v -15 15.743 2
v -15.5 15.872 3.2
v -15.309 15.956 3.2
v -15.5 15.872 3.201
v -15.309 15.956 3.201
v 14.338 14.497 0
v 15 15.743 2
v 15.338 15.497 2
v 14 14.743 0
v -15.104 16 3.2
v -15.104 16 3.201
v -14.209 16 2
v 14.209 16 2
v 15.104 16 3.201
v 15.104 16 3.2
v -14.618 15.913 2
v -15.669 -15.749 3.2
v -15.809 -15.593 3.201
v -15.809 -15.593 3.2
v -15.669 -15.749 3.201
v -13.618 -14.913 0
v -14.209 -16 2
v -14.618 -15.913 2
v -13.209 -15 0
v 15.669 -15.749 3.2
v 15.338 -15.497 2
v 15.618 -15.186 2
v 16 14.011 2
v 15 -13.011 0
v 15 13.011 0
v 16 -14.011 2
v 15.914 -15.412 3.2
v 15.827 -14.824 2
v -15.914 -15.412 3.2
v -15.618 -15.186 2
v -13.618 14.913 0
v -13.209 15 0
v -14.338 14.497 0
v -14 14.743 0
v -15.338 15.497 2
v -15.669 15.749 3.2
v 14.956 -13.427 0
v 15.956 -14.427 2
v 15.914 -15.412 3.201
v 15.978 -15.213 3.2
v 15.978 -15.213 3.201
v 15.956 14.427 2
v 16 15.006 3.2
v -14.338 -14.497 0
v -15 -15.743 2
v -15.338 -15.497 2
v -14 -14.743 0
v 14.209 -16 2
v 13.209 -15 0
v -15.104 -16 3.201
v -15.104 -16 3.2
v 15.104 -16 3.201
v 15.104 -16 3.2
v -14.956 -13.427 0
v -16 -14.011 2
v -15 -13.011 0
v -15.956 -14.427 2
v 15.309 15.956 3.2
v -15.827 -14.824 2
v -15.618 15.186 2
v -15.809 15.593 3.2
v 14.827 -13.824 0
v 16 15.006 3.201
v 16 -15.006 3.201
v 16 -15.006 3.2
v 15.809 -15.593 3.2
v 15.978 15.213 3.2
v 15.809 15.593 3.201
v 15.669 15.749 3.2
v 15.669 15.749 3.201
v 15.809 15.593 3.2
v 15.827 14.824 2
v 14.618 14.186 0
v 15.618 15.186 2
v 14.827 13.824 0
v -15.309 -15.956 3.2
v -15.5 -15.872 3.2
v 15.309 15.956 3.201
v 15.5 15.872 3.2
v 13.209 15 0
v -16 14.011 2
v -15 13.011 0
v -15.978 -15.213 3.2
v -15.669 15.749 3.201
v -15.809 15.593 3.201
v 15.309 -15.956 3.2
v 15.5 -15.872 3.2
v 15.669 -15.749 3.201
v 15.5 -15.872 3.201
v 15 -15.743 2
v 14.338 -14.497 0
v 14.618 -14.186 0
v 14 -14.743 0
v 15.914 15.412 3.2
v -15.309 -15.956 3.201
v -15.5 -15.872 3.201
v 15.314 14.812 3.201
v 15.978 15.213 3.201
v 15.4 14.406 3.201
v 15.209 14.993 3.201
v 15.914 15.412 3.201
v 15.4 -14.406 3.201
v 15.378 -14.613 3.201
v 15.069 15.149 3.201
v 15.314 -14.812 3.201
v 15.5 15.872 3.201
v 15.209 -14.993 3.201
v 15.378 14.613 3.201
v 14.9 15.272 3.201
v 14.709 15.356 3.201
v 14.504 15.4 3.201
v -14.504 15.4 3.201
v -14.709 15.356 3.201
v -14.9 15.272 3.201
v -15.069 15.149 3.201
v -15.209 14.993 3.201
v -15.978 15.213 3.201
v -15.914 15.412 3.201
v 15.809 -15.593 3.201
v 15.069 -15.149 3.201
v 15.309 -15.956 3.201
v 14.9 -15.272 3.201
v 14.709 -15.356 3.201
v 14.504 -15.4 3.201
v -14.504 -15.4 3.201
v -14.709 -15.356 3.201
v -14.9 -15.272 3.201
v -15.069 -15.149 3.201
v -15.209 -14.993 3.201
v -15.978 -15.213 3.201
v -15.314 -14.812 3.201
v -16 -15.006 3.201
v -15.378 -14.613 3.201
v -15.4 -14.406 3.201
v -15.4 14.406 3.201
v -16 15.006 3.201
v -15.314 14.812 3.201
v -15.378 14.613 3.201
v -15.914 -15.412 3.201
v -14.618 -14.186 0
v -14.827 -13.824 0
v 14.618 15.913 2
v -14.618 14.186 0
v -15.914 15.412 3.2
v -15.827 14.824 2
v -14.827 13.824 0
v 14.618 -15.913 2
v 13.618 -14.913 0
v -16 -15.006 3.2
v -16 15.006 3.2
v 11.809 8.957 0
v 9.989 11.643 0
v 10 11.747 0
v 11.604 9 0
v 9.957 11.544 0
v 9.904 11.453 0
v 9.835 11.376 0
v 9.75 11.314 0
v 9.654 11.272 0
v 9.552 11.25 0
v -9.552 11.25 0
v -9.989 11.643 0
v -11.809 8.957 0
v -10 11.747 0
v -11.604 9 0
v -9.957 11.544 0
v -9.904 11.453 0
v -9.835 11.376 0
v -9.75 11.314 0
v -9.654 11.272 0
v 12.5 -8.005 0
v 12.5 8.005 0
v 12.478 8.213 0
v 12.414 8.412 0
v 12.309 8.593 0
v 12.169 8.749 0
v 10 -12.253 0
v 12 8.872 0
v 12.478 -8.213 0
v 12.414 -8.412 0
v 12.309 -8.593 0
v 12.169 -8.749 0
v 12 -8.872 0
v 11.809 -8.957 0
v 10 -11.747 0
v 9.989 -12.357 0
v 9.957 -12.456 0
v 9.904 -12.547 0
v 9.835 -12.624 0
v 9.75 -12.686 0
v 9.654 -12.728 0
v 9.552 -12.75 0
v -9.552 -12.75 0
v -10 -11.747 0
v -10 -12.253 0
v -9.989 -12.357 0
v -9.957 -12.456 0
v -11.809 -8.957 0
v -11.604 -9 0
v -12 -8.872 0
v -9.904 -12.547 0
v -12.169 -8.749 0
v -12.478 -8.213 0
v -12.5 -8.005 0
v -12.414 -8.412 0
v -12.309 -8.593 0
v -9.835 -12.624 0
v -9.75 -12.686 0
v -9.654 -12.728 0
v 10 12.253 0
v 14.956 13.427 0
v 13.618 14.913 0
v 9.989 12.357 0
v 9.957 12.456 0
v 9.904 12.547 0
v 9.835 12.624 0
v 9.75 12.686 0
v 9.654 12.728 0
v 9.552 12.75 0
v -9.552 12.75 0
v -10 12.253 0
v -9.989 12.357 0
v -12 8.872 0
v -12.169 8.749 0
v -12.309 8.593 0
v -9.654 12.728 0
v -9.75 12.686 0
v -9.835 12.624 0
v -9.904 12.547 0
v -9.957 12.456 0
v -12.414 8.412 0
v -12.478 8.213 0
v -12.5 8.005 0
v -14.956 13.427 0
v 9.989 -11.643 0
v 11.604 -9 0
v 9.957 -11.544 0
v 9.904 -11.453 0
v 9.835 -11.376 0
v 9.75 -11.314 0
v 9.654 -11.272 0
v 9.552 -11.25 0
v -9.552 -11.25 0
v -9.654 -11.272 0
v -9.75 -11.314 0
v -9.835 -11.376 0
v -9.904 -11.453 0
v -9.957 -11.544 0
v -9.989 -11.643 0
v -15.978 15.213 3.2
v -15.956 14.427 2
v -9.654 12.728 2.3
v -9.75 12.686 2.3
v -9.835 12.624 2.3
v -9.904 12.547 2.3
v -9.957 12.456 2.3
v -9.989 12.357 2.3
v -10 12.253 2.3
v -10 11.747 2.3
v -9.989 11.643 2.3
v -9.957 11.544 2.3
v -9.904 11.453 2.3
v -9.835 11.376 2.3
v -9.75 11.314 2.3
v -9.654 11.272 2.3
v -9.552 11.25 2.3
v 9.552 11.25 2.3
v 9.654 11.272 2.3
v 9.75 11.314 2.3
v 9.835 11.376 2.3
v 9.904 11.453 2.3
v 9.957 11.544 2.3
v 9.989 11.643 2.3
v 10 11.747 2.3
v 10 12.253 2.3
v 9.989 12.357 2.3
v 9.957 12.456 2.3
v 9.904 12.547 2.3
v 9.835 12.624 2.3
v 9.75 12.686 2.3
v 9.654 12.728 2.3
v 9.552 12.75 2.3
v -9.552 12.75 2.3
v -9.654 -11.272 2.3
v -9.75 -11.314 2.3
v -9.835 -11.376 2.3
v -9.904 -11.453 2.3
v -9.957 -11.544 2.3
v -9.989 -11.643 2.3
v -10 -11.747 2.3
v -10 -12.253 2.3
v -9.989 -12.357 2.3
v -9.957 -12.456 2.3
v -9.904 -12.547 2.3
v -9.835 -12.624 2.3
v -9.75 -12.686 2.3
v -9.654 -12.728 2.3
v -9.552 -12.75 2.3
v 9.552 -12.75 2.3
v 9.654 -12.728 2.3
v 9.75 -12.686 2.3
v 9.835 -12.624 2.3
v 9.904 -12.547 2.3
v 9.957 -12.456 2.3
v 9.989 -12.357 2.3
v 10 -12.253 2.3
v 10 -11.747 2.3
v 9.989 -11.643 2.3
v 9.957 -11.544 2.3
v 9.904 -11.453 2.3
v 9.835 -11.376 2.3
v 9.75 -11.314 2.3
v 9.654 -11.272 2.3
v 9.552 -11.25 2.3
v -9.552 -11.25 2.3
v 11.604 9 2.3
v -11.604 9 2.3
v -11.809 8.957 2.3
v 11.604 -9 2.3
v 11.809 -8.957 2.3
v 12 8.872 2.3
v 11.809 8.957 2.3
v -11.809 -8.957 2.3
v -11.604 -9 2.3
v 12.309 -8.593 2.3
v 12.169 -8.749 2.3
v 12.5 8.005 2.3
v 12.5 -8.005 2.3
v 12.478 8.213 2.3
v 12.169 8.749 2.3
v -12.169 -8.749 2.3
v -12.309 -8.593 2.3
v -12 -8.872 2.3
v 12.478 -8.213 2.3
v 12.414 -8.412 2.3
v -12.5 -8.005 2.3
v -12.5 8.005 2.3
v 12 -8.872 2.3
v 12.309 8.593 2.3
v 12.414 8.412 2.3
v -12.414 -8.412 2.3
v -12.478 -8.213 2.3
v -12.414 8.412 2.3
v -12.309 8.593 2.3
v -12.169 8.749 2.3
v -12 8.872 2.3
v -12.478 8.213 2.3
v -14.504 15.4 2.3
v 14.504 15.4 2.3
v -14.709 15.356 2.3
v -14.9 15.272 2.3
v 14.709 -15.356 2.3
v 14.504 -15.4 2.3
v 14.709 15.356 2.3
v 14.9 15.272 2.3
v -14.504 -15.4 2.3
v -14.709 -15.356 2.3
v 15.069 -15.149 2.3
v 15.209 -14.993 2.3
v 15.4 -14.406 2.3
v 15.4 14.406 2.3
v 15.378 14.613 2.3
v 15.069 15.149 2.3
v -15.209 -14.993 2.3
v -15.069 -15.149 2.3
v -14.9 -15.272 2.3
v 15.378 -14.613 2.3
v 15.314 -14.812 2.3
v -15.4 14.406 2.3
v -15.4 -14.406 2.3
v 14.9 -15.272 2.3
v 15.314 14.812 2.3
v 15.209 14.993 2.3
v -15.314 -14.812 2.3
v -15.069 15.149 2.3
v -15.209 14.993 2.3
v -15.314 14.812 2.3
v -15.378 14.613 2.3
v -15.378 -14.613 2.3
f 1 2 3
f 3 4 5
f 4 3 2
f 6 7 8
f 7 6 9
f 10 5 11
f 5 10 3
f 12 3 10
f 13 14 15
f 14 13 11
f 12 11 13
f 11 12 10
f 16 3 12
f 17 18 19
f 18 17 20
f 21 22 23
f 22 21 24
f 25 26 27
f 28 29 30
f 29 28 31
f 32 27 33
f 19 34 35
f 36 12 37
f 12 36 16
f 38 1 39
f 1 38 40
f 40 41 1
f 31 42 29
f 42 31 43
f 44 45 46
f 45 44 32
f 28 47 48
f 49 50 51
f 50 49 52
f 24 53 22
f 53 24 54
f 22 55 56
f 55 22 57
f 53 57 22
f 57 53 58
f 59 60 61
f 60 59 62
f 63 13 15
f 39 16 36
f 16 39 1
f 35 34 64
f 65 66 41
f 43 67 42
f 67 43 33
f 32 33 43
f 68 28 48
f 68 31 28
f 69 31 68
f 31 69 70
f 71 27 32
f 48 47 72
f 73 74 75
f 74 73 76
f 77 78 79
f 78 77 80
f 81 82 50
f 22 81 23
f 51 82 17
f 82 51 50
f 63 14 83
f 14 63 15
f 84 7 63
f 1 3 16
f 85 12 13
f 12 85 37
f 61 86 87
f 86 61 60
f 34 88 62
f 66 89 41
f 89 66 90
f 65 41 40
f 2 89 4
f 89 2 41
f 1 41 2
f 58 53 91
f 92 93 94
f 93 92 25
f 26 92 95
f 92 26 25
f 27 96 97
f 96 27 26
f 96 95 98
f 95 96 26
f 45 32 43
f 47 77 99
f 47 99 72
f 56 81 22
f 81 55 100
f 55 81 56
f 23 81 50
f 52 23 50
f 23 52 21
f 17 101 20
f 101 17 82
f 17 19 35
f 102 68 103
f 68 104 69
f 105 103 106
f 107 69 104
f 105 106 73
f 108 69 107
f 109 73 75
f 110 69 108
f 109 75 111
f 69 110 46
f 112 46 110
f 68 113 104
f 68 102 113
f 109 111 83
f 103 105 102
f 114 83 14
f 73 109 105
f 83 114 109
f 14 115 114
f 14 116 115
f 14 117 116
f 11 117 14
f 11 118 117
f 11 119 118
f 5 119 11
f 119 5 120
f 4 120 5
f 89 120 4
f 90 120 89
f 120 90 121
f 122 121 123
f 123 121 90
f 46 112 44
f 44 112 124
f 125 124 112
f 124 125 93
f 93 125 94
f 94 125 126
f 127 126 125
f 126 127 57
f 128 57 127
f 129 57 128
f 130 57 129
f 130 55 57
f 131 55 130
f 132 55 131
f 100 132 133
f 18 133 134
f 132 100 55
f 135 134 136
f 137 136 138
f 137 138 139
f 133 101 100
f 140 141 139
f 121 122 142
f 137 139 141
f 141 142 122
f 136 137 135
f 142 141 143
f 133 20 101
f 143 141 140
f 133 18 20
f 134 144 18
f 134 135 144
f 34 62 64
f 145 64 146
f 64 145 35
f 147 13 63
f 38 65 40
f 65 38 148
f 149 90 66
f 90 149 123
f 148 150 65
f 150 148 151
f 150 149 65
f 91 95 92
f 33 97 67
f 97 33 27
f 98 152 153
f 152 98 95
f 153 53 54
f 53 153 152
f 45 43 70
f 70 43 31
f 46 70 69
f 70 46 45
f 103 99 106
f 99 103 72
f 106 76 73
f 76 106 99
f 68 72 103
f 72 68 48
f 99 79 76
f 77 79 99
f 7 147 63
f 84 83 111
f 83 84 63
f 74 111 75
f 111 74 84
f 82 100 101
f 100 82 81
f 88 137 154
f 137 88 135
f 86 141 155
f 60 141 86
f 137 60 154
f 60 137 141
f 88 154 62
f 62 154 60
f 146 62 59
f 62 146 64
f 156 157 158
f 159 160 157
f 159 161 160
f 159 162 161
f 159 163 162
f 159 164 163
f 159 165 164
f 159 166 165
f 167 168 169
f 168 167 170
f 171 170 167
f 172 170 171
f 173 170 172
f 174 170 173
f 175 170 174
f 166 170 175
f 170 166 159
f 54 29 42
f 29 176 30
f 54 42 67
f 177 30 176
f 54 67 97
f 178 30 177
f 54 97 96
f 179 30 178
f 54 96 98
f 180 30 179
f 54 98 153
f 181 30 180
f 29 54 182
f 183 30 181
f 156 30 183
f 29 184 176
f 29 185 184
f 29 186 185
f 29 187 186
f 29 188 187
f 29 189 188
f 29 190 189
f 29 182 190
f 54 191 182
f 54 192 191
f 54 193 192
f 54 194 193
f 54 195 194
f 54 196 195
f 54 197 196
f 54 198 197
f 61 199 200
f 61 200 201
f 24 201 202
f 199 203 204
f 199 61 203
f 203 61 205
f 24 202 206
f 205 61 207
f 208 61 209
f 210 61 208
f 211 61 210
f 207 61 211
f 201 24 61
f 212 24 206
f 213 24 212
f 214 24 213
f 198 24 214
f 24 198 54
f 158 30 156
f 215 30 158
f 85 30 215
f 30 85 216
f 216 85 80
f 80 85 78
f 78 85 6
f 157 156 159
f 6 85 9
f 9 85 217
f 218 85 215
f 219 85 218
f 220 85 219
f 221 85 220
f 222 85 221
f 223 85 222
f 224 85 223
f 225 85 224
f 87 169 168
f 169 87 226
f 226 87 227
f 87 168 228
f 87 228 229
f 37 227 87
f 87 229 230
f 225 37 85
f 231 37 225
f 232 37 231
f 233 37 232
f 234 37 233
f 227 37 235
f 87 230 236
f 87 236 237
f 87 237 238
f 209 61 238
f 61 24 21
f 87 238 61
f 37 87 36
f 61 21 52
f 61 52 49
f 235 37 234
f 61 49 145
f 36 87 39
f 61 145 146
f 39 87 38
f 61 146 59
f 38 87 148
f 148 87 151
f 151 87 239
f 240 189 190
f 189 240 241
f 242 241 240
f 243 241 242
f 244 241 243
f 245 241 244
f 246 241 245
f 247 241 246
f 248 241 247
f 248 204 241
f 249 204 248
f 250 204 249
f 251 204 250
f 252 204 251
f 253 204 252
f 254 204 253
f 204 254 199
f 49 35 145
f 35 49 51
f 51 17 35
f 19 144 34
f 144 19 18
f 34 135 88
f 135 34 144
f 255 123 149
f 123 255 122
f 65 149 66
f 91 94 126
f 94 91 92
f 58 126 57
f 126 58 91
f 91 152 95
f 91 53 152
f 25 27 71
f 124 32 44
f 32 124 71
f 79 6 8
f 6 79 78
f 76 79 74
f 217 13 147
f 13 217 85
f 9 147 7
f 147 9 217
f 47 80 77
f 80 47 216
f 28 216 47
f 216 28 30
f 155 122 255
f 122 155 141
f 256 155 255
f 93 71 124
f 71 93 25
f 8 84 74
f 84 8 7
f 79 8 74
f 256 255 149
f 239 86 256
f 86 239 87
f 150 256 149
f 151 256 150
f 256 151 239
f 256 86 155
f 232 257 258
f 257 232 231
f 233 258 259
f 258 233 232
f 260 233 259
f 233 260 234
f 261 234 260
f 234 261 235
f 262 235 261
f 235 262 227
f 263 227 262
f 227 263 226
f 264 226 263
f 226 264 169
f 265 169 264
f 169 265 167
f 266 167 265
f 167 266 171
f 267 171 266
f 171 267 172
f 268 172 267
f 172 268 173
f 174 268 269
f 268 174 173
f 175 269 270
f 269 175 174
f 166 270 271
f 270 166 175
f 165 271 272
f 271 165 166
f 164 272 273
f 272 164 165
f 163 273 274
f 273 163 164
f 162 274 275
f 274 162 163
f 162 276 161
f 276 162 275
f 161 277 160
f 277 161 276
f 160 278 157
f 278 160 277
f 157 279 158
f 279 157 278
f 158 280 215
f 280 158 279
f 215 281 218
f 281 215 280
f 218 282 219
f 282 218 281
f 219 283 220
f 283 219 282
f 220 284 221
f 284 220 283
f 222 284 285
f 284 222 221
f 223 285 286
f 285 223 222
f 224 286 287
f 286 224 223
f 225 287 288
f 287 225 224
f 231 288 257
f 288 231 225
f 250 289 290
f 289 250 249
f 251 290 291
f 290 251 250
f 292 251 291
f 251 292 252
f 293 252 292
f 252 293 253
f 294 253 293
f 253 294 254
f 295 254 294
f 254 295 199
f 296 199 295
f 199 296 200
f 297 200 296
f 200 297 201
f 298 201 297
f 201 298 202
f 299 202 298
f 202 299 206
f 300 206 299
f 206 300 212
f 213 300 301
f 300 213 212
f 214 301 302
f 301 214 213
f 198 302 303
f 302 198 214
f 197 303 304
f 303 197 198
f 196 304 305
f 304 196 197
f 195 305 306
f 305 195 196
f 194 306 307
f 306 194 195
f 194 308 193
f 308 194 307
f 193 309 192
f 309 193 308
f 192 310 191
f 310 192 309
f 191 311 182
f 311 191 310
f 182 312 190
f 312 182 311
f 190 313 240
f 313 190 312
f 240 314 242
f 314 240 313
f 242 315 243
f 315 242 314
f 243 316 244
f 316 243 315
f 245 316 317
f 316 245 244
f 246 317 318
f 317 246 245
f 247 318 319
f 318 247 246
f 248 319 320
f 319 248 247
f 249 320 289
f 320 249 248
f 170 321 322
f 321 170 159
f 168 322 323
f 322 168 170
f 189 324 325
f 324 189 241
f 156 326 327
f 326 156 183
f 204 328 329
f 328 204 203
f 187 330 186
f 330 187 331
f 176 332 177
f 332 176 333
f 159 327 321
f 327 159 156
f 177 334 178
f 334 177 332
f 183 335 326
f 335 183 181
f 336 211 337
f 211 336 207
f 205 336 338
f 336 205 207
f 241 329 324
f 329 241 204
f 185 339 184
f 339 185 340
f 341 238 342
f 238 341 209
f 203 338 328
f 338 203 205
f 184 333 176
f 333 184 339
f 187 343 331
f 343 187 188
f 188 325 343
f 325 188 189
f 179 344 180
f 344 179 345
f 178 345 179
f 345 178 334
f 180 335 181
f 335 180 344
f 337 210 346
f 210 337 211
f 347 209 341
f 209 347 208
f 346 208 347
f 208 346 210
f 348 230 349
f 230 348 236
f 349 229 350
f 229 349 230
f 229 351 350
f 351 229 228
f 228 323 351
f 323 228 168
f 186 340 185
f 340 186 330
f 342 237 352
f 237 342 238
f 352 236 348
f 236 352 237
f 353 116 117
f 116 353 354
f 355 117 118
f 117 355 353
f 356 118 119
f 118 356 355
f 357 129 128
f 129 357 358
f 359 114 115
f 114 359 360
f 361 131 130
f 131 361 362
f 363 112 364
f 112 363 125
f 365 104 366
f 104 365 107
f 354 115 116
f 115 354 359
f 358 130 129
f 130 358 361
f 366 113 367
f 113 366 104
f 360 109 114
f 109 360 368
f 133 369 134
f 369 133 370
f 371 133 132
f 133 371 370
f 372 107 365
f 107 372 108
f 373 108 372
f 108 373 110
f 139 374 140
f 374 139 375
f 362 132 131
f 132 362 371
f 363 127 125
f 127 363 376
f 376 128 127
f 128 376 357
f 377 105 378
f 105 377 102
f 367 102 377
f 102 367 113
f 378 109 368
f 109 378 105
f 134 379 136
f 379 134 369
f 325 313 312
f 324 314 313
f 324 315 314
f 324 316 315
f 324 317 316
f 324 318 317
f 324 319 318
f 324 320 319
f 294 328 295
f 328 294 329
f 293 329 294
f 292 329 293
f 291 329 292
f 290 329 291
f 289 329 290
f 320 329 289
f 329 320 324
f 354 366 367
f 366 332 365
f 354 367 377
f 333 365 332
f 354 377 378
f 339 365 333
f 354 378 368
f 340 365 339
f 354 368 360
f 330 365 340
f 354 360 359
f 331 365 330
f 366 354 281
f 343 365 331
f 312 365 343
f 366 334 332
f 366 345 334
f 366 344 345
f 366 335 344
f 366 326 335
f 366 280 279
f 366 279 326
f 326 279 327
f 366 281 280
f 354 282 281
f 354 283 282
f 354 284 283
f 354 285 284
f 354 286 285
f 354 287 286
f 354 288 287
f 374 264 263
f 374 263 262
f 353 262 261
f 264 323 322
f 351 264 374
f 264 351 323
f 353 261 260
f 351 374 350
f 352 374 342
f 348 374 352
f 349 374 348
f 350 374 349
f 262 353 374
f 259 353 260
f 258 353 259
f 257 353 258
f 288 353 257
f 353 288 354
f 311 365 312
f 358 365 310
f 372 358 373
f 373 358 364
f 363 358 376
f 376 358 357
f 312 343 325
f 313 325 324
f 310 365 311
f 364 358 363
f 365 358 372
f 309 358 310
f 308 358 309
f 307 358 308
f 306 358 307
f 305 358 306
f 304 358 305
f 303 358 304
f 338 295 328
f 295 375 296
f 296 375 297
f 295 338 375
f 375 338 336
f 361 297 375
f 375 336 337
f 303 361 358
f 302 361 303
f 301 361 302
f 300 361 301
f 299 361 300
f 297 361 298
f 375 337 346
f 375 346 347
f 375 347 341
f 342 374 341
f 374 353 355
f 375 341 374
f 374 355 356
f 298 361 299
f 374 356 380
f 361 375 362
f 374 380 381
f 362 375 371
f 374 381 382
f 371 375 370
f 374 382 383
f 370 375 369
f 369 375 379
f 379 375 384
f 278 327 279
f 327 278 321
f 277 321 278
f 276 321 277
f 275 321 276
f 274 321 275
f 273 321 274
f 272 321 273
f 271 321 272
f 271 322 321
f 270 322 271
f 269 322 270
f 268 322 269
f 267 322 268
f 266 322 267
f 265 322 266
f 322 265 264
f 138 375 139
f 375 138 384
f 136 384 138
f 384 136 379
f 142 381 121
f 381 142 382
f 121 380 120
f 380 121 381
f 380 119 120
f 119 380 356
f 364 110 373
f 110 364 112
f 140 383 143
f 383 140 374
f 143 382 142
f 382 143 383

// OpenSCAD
// file: scad-utils/morphology.scad
// Copyright (c) 2013 Oskar Linde. All rights reserved.
// License: BSD
//
// This library contains basic 2D morphology operations
//
// outset(d=1)            - creates a polygon at an offset d outside a 2D shape
// inset(d=1)             - creates a polygon at an offset d inside a 2D shape
// fillet(r=1)            - adds fillets of radius r to all concave corners of a 2D shape
// rounding(r=1)          - adds rounding to all convex corners of a 2D shape
// shell(d,center=false)  - makes a shell of width d along the edge of a 2D shape
//                        - positive values of d places the shell on the outside
//                        - negative values of d places the shell on the inside
//                        - center=true and positive d places the shell centered on the edge

module outset(d=1) {
	// Bug workaround for older OpenSCAD versions
	if (version_num() < 20130424) render() outset_extruded(d) children();
	else minkowski() {
		circle(r=d);
		children();
	}
}

module outset_extruded(d=1) {
   projection(cut=true) minkowski() {
        cylinder(r=d);
        linear_extrude(center=true) children();
   }
}

module inset(d=1) {
	 render() inverse() outset(d=d) inverse() children();
}

module fillet(r=1) {
	inset(d=r) render() outset(d=r) children();
}

module rounding(r=1) {
	outset(d=r) inset(d=r) children();
}

module shell(d,center=false) {
	if (center && d > 0) {
		difference() {
			outset(d=d/2) children();
			inset(d=d/2) children();
		}
	}
	if (!center && d > 0) {
		difference() {
			outset(d=d) children();
			children();
		}
	}
	if (!center && d < 0) {
		difference() {
			children();
			inset(d=-d) children();
		}
	}
	if (d == 0) children();
}


// Below are for internal use only

module inverse() {
	difference() {
		square(1e5,center=true);
		children();
	}
}


// TEST CODE

use <mirror.scad>

module arrow(l=1,w=.6,t=0.15) {
	mirror_y() polygon([[0,0],[l,0],[l-w/2,w/2],[l-w/2-sqrt(2)*t,w/2],[l-t/2-sqrt(2)*t,t/2],[0,t/2]]);
}

module shape() {
	polygon([[0,0],[1,0],[1.5,1],[2.5,1],[2,-1],[0,-1]]);
}

if(0) assign($fn=32) {

	for (p = [0:10*3-1]) assign(o=floor(p/3)) {
		translate([(p%3)*2.5,-o*3]) {
			//%if (p % 3 == 1) translate([0,0,1]) shape();
			if (p % 3 == 0) shape();
			if (p % 3 == 1) translate([0.6,0]) arrow();
			if (p % 3 == 2) {
				if (o == 0) inset(d=0.3) shape();
				if (o == 1) outset(d=0.3) shape();
				if (o == 2) rounding(r=0.3) shape();
				if (o == 3) fillet(r=0.3) shape();
				if (o == 4) shell(d=0.3) shape();
				if (o == 5) shell(d=-0.3) shape();
				if (o == 6) shell(d=0.3,center=true) shape();
				if (o == 7) rounding(r=0.3) fillet(r=0.3) shape();
				if (o == 8) shell(d=0.3,center=true) fillet(r=0.3) rounding(r=0.3) shape();
				if (o == 9) shell(d=-0.3) fillet(r=0.3) rounding(r=0.3) shape();
			}
		}
	}
}
// file: scad-utils/mirror.scad
// Copyright (c) 2013 Oskar Linde. All rights reserved.
// License: BSD
//
// This library contains simple mirroring functions
//
// mirror_x()
// mirror_y()
// mirror_z()


module mirror_x() {
  union() {
    child();
    scale([-1,1,1]) child();
  }
}

module mirror_y() {
  union() {
    child();
    scale([1,-1,1]) child();
  }
}

module mirror_z() {
  union() {
    child();
    scale([1,1,-1]) child();
  }
}
// main file
include <scad-utils/mirror.scad>
include <scad-utils/morphology.scad>

$fn=30;

BODY_X=32;
BODY_Y=32;
BODY_Z=3.2;

module jig() {
  difference(){
    hull() {
      translate([0, 0, BODY_Z]) 
      linear_extrude(height=0.001, center=false, convexity=10, twist=0)
      rounding(r=1)
      square(size=[BODY_X, BODY_Y], center=true);

      translate([0, 0, 2]) 
      linear_extrude(height=0.001, center=false, convexity=10, twist=0)
      rounding(r=2)
      square(size=[BODY_X, BODY_Y], center=true);

      linear_extrude(height=0.001, center=false, convexity=10, twist=0)
      rounding(r=2)
      square(size=[BODY_X-2, BODY_Y-2], center=true);    
    }

    linear_extrude(height=BODY_Z*2, center=false, convexity=10, twist=0)
    rounding(r=0.5)
    mirror_y()
    translate([0, 30/2-3, -0.01]) 
    square(size=[20, 1.5], center=true);

    linear_extrude(height=BODY_Z*2, center=false, convexity=10, twist=0)
    rounding(r=1)
    square(size=[25, 18], center=true);

    translate([0, 0, 1.5 + 0.8]) 
    linear_extrude(height=BODY_Z, center=false, convexity=10, twist=0)
    rounding(r=1)
    square(size=[BODY_X-1.2, BODY_Y-1.2], center=true);
  }
}

jig();
